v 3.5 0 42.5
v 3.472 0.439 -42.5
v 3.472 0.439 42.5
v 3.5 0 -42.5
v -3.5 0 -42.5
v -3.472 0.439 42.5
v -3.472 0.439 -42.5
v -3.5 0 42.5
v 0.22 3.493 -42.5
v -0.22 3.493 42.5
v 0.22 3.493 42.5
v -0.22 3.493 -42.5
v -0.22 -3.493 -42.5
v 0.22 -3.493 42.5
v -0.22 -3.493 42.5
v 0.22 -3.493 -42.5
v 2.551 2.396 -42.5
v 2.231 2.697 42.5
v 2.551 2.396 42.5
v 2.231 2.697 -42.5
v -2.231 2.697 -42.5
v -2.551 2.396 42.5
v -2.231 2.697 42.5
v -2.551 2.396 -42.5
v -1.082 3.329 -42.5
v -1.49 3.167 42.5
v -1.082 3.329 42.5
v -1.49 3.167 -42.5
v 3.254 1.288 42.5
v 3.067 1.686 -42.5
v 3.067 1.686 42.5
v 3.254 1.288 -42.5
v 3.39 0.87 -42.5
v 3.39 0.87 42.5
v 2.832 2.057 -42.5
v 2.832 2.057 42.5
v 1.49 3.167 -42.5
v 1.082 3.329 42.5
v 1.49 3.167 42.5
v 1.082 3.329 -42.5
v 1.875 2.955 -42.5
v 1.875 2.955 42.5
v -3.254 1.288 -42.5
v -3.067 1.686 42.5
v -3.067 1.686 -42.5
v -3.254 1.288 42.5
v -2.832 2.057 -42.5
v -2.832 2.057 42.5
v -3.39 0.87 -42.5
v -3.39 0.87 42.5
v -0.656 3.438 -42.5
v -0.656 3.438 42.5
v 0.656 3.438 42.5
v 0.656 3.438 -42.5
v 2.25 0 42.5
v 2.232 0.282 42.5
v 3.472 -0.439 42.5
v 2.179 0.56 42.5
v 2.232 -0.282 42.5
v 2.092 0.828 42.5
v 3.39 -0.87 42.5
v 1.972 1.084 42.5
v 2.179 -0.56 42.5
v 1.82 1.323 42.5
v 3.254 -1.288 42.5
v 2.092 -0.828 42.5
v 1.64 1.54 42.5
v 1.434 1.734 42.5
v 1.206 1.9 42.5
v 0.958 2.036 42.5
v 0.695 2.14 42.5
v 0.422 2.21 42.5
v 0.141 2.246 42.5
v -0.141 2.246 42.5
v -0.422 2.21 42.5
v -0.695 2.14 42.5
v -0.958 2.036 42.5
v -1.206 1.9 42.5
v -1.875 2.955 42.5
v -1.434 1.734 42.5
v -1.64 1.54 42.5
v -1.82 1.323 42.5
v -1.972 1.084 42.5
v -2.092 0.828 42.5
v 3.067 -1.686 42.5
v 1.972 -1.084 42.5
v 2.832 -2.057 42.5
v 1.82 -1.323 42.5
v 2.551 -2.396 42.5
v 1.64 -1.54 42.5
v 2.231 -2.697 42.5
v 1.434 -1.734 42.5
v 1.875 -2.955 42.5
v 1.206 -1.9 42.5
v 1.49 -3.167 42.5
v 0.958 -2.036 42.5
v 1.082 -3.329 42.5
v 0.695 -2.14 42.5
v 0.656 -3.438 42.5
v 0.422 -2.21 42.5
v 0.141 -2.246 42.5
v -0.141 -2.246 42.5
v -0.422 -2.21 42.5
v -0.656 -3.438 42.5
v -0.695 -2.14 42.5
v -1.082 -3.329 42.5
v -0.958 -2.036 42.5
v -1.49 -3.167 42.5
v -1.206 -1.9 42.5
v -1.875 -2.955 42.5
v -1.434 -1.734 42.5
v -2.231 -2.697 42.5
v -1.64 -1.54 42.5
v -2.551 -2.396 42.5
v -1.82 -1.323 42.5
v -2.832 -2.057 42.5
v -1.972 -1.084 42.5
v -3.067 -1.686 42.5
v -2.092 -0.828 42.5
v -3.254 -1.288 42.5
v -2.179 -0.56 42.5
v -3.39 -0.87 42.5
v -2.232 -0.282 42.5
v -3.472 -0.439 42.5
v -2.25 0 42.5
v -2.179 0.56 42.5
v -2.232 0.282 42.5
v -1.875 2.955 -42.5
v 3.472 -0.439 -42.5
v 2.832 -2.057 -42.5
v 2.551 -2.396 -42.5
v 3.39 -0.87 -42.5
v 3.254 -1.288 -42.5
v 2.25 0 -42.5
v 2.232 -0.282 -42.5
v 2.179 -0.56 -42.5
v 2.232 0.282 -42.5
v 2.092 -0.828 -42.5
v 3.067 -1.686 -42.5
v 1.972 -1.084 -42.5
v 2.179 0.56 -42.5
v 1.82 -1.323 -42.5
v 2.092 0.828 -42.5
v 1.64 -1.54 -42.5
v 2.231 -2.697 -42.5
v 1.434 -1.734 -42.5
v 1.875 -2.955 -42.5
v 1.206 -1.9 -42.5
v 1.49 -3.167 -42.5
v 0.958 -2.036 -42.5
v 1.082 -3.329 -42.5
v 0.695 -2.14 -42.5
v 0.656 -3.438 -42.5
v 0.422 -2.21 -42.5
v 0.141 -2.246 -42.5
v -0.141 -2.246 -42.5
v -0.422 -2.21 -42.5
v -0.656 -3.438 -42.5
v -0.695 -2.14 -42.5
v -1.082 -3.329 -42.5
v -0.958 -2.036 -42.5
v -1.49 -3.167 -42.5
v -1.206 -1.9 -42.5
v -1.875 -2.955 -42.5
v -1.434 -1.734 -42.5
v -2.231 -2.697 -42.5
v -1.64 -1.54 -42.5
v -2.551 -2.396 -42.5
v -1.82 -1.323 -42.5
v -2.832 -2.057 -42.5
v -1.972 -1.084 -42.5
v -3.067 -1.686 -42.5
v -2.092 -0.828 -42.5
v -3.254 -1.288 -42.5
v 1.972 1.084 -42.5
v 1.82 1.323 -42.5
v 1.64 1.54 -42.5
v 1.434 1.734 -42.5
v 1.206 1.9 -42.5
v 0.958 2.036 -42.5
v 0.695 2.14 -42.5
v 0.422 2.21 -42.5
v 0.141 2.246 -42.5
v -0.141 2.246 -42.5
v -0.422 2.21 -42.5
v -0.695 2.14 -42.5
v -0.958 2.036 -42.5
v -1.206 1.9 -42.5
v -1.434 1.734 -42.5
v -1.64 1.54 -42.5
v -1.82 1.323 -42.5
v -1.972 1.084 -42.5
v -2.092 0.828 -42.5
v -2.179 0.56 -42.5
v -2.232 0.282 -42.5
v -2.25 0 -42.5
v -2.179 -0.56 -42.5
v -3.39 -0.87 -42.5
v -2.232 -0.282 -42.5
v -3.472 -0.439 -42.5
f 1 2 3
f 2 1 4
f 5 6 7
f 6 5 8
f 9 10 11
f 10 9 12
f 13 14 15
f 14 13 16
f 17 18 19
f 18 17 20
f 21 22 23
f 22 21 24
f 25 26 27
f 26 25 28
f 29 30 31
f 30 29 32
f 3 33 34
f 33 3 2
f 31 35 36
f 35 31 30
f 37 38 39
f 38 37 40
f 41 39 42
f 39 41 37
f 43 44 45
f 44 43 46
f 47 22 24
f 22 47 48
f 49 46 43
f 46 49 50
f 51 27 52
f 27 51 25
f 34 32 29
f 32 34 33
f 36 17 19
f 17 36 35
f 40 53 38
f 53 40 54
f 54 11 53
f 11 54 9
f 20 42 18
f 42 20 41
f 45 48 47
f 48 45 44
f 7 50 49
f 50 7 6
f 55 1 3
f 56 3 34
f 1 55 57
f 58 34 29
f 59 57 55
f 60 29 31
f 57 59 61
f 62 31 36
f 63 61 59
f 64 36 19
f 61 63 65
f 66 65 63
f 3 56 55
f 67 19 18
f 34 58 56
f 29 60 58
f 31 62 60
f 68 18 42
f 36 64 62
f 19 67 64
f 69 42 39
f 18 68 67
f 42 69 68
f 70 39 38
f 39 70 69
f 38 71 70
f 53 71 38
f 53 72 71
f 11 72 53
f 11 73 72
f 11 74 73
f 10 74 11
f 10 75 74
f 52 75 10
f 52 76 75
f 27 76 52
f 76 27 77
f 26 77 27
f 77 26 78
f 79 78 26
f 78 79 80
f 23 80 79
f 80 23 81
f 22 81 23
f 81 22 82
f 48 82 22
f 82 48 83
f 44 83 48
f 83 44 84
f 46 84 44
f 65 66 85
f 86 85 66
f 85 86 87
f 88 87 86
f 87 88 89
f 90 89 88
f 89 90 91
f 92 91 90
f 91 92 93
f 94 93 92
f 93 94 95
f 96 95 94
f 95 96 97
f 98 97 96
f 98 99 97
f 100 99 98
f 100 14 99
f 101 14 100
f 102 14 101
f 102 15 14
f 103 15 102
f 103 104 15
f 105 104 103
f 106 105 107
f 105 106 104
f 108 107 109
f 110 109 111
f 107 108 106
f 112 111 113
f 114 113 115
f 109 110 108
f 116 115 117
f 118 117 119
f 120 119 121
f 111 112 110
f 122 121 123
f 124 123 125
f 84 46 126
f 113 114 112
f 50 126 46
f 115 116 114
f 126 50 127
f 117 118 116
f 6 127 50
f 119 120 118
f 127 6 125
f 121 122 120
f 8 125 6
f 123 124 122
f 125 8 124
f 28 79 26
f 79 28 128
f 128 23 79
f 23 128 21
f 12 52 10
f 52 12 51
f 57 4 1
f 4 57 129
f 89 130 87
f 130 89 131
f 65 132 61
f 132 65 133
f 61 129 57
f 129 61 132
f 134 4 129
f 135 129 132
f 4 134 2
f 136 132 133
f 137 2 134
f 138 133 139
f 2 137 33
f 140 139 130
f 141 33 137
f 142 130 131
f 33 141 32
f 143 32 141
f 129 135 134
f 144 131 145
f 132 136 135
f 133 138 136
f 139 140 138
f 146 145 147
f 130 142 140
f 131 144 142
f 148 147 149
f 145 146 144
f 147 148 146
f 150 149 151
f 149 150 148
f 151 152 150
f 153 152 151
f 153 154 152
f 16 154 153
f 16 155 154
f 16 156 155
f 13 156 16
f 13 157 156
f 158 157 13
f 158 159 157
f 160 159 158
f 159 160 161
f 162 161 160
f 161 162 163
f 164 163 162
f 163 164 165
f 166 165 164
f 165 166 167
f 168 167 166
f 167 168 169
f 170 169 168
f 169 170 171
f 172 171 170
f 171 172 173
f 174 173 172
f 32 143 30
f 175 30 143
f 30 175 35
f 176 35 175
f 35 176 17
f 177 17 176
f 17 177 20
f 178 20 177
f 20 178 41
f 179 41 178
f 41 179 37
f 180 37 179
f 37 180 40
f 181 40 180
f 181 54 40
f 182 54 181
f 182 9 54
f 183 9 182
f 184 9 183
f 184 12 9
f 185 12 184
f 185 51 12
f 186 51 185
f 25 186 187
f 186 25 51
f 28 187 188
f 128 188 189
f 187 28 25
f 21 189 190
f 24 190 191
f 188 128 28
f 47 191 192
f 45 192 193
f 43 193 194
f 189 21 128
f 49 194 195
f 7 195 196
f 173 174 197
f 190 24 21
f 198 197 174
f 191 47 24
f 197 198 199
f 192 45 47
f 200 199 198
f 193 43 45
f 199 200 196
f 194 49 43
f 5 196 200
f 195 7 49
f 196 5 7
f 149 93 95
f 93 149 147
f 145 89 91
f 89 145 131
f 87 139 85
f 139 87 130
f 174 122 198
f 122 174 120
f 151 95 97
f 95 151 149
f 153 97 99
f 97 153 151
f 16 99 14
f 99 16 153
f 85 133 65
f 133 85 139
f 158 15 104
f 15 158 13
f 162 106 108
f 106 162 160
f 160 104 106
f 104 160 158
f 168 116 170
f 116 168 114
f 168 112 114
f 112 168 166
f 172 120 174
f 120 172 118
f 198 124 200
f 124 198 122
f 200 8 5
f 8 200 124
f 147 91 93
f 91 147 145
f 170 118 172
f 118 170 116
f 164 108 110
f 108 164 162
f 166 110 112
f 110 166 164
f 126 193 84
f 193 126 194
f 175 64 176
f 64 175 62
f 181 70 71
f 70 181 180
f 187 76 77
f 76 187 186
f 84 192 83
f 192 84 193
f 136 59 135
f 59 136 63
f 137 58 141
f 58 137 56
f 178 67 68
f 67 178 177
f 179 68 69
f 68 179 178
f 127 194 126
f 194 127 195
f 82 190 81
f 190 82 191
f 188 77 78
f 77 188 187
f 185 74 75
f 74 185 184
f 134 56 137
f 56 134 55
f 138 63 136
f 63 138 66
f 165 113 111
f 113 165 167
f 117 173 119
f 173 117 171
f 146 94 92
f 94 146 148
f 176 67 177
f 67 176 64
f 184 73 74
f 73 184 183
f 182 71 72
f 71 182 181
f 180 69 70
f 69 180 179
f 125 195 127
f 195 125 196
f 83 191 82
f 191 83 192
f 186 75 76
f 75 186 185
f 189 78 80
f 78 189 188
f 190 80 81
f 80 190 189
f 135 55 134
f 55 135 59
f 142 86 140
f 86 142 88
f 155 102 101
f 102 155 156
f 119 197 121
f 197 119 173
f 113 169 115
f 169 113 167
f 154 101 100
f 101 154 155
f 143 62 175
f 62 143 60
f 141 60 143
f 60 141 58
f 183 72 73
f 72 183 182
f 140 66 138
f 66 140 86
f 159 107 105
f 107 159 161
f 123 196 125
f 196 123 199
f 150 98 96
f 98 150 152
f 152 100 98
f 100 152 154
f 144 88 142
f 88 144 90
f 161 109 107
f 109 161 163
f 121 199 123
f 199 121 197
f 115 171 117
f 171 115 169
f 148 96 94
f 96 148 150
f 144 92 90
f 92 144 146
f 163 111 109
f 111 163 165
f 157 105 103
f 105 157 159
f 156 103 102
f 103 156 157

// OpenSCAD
$fn = 50;


difference() {
	union() {
		translate(v = [0, 0, -42.5000000000]) {
			cylinder(h = 85, r = 3.5000000000);
		}
	}
	union() {
		translate(v = [0, 0, -100.0000000000]) {
			cylinder(h = 200, r = 2.2500000000);
		}
	}
}
